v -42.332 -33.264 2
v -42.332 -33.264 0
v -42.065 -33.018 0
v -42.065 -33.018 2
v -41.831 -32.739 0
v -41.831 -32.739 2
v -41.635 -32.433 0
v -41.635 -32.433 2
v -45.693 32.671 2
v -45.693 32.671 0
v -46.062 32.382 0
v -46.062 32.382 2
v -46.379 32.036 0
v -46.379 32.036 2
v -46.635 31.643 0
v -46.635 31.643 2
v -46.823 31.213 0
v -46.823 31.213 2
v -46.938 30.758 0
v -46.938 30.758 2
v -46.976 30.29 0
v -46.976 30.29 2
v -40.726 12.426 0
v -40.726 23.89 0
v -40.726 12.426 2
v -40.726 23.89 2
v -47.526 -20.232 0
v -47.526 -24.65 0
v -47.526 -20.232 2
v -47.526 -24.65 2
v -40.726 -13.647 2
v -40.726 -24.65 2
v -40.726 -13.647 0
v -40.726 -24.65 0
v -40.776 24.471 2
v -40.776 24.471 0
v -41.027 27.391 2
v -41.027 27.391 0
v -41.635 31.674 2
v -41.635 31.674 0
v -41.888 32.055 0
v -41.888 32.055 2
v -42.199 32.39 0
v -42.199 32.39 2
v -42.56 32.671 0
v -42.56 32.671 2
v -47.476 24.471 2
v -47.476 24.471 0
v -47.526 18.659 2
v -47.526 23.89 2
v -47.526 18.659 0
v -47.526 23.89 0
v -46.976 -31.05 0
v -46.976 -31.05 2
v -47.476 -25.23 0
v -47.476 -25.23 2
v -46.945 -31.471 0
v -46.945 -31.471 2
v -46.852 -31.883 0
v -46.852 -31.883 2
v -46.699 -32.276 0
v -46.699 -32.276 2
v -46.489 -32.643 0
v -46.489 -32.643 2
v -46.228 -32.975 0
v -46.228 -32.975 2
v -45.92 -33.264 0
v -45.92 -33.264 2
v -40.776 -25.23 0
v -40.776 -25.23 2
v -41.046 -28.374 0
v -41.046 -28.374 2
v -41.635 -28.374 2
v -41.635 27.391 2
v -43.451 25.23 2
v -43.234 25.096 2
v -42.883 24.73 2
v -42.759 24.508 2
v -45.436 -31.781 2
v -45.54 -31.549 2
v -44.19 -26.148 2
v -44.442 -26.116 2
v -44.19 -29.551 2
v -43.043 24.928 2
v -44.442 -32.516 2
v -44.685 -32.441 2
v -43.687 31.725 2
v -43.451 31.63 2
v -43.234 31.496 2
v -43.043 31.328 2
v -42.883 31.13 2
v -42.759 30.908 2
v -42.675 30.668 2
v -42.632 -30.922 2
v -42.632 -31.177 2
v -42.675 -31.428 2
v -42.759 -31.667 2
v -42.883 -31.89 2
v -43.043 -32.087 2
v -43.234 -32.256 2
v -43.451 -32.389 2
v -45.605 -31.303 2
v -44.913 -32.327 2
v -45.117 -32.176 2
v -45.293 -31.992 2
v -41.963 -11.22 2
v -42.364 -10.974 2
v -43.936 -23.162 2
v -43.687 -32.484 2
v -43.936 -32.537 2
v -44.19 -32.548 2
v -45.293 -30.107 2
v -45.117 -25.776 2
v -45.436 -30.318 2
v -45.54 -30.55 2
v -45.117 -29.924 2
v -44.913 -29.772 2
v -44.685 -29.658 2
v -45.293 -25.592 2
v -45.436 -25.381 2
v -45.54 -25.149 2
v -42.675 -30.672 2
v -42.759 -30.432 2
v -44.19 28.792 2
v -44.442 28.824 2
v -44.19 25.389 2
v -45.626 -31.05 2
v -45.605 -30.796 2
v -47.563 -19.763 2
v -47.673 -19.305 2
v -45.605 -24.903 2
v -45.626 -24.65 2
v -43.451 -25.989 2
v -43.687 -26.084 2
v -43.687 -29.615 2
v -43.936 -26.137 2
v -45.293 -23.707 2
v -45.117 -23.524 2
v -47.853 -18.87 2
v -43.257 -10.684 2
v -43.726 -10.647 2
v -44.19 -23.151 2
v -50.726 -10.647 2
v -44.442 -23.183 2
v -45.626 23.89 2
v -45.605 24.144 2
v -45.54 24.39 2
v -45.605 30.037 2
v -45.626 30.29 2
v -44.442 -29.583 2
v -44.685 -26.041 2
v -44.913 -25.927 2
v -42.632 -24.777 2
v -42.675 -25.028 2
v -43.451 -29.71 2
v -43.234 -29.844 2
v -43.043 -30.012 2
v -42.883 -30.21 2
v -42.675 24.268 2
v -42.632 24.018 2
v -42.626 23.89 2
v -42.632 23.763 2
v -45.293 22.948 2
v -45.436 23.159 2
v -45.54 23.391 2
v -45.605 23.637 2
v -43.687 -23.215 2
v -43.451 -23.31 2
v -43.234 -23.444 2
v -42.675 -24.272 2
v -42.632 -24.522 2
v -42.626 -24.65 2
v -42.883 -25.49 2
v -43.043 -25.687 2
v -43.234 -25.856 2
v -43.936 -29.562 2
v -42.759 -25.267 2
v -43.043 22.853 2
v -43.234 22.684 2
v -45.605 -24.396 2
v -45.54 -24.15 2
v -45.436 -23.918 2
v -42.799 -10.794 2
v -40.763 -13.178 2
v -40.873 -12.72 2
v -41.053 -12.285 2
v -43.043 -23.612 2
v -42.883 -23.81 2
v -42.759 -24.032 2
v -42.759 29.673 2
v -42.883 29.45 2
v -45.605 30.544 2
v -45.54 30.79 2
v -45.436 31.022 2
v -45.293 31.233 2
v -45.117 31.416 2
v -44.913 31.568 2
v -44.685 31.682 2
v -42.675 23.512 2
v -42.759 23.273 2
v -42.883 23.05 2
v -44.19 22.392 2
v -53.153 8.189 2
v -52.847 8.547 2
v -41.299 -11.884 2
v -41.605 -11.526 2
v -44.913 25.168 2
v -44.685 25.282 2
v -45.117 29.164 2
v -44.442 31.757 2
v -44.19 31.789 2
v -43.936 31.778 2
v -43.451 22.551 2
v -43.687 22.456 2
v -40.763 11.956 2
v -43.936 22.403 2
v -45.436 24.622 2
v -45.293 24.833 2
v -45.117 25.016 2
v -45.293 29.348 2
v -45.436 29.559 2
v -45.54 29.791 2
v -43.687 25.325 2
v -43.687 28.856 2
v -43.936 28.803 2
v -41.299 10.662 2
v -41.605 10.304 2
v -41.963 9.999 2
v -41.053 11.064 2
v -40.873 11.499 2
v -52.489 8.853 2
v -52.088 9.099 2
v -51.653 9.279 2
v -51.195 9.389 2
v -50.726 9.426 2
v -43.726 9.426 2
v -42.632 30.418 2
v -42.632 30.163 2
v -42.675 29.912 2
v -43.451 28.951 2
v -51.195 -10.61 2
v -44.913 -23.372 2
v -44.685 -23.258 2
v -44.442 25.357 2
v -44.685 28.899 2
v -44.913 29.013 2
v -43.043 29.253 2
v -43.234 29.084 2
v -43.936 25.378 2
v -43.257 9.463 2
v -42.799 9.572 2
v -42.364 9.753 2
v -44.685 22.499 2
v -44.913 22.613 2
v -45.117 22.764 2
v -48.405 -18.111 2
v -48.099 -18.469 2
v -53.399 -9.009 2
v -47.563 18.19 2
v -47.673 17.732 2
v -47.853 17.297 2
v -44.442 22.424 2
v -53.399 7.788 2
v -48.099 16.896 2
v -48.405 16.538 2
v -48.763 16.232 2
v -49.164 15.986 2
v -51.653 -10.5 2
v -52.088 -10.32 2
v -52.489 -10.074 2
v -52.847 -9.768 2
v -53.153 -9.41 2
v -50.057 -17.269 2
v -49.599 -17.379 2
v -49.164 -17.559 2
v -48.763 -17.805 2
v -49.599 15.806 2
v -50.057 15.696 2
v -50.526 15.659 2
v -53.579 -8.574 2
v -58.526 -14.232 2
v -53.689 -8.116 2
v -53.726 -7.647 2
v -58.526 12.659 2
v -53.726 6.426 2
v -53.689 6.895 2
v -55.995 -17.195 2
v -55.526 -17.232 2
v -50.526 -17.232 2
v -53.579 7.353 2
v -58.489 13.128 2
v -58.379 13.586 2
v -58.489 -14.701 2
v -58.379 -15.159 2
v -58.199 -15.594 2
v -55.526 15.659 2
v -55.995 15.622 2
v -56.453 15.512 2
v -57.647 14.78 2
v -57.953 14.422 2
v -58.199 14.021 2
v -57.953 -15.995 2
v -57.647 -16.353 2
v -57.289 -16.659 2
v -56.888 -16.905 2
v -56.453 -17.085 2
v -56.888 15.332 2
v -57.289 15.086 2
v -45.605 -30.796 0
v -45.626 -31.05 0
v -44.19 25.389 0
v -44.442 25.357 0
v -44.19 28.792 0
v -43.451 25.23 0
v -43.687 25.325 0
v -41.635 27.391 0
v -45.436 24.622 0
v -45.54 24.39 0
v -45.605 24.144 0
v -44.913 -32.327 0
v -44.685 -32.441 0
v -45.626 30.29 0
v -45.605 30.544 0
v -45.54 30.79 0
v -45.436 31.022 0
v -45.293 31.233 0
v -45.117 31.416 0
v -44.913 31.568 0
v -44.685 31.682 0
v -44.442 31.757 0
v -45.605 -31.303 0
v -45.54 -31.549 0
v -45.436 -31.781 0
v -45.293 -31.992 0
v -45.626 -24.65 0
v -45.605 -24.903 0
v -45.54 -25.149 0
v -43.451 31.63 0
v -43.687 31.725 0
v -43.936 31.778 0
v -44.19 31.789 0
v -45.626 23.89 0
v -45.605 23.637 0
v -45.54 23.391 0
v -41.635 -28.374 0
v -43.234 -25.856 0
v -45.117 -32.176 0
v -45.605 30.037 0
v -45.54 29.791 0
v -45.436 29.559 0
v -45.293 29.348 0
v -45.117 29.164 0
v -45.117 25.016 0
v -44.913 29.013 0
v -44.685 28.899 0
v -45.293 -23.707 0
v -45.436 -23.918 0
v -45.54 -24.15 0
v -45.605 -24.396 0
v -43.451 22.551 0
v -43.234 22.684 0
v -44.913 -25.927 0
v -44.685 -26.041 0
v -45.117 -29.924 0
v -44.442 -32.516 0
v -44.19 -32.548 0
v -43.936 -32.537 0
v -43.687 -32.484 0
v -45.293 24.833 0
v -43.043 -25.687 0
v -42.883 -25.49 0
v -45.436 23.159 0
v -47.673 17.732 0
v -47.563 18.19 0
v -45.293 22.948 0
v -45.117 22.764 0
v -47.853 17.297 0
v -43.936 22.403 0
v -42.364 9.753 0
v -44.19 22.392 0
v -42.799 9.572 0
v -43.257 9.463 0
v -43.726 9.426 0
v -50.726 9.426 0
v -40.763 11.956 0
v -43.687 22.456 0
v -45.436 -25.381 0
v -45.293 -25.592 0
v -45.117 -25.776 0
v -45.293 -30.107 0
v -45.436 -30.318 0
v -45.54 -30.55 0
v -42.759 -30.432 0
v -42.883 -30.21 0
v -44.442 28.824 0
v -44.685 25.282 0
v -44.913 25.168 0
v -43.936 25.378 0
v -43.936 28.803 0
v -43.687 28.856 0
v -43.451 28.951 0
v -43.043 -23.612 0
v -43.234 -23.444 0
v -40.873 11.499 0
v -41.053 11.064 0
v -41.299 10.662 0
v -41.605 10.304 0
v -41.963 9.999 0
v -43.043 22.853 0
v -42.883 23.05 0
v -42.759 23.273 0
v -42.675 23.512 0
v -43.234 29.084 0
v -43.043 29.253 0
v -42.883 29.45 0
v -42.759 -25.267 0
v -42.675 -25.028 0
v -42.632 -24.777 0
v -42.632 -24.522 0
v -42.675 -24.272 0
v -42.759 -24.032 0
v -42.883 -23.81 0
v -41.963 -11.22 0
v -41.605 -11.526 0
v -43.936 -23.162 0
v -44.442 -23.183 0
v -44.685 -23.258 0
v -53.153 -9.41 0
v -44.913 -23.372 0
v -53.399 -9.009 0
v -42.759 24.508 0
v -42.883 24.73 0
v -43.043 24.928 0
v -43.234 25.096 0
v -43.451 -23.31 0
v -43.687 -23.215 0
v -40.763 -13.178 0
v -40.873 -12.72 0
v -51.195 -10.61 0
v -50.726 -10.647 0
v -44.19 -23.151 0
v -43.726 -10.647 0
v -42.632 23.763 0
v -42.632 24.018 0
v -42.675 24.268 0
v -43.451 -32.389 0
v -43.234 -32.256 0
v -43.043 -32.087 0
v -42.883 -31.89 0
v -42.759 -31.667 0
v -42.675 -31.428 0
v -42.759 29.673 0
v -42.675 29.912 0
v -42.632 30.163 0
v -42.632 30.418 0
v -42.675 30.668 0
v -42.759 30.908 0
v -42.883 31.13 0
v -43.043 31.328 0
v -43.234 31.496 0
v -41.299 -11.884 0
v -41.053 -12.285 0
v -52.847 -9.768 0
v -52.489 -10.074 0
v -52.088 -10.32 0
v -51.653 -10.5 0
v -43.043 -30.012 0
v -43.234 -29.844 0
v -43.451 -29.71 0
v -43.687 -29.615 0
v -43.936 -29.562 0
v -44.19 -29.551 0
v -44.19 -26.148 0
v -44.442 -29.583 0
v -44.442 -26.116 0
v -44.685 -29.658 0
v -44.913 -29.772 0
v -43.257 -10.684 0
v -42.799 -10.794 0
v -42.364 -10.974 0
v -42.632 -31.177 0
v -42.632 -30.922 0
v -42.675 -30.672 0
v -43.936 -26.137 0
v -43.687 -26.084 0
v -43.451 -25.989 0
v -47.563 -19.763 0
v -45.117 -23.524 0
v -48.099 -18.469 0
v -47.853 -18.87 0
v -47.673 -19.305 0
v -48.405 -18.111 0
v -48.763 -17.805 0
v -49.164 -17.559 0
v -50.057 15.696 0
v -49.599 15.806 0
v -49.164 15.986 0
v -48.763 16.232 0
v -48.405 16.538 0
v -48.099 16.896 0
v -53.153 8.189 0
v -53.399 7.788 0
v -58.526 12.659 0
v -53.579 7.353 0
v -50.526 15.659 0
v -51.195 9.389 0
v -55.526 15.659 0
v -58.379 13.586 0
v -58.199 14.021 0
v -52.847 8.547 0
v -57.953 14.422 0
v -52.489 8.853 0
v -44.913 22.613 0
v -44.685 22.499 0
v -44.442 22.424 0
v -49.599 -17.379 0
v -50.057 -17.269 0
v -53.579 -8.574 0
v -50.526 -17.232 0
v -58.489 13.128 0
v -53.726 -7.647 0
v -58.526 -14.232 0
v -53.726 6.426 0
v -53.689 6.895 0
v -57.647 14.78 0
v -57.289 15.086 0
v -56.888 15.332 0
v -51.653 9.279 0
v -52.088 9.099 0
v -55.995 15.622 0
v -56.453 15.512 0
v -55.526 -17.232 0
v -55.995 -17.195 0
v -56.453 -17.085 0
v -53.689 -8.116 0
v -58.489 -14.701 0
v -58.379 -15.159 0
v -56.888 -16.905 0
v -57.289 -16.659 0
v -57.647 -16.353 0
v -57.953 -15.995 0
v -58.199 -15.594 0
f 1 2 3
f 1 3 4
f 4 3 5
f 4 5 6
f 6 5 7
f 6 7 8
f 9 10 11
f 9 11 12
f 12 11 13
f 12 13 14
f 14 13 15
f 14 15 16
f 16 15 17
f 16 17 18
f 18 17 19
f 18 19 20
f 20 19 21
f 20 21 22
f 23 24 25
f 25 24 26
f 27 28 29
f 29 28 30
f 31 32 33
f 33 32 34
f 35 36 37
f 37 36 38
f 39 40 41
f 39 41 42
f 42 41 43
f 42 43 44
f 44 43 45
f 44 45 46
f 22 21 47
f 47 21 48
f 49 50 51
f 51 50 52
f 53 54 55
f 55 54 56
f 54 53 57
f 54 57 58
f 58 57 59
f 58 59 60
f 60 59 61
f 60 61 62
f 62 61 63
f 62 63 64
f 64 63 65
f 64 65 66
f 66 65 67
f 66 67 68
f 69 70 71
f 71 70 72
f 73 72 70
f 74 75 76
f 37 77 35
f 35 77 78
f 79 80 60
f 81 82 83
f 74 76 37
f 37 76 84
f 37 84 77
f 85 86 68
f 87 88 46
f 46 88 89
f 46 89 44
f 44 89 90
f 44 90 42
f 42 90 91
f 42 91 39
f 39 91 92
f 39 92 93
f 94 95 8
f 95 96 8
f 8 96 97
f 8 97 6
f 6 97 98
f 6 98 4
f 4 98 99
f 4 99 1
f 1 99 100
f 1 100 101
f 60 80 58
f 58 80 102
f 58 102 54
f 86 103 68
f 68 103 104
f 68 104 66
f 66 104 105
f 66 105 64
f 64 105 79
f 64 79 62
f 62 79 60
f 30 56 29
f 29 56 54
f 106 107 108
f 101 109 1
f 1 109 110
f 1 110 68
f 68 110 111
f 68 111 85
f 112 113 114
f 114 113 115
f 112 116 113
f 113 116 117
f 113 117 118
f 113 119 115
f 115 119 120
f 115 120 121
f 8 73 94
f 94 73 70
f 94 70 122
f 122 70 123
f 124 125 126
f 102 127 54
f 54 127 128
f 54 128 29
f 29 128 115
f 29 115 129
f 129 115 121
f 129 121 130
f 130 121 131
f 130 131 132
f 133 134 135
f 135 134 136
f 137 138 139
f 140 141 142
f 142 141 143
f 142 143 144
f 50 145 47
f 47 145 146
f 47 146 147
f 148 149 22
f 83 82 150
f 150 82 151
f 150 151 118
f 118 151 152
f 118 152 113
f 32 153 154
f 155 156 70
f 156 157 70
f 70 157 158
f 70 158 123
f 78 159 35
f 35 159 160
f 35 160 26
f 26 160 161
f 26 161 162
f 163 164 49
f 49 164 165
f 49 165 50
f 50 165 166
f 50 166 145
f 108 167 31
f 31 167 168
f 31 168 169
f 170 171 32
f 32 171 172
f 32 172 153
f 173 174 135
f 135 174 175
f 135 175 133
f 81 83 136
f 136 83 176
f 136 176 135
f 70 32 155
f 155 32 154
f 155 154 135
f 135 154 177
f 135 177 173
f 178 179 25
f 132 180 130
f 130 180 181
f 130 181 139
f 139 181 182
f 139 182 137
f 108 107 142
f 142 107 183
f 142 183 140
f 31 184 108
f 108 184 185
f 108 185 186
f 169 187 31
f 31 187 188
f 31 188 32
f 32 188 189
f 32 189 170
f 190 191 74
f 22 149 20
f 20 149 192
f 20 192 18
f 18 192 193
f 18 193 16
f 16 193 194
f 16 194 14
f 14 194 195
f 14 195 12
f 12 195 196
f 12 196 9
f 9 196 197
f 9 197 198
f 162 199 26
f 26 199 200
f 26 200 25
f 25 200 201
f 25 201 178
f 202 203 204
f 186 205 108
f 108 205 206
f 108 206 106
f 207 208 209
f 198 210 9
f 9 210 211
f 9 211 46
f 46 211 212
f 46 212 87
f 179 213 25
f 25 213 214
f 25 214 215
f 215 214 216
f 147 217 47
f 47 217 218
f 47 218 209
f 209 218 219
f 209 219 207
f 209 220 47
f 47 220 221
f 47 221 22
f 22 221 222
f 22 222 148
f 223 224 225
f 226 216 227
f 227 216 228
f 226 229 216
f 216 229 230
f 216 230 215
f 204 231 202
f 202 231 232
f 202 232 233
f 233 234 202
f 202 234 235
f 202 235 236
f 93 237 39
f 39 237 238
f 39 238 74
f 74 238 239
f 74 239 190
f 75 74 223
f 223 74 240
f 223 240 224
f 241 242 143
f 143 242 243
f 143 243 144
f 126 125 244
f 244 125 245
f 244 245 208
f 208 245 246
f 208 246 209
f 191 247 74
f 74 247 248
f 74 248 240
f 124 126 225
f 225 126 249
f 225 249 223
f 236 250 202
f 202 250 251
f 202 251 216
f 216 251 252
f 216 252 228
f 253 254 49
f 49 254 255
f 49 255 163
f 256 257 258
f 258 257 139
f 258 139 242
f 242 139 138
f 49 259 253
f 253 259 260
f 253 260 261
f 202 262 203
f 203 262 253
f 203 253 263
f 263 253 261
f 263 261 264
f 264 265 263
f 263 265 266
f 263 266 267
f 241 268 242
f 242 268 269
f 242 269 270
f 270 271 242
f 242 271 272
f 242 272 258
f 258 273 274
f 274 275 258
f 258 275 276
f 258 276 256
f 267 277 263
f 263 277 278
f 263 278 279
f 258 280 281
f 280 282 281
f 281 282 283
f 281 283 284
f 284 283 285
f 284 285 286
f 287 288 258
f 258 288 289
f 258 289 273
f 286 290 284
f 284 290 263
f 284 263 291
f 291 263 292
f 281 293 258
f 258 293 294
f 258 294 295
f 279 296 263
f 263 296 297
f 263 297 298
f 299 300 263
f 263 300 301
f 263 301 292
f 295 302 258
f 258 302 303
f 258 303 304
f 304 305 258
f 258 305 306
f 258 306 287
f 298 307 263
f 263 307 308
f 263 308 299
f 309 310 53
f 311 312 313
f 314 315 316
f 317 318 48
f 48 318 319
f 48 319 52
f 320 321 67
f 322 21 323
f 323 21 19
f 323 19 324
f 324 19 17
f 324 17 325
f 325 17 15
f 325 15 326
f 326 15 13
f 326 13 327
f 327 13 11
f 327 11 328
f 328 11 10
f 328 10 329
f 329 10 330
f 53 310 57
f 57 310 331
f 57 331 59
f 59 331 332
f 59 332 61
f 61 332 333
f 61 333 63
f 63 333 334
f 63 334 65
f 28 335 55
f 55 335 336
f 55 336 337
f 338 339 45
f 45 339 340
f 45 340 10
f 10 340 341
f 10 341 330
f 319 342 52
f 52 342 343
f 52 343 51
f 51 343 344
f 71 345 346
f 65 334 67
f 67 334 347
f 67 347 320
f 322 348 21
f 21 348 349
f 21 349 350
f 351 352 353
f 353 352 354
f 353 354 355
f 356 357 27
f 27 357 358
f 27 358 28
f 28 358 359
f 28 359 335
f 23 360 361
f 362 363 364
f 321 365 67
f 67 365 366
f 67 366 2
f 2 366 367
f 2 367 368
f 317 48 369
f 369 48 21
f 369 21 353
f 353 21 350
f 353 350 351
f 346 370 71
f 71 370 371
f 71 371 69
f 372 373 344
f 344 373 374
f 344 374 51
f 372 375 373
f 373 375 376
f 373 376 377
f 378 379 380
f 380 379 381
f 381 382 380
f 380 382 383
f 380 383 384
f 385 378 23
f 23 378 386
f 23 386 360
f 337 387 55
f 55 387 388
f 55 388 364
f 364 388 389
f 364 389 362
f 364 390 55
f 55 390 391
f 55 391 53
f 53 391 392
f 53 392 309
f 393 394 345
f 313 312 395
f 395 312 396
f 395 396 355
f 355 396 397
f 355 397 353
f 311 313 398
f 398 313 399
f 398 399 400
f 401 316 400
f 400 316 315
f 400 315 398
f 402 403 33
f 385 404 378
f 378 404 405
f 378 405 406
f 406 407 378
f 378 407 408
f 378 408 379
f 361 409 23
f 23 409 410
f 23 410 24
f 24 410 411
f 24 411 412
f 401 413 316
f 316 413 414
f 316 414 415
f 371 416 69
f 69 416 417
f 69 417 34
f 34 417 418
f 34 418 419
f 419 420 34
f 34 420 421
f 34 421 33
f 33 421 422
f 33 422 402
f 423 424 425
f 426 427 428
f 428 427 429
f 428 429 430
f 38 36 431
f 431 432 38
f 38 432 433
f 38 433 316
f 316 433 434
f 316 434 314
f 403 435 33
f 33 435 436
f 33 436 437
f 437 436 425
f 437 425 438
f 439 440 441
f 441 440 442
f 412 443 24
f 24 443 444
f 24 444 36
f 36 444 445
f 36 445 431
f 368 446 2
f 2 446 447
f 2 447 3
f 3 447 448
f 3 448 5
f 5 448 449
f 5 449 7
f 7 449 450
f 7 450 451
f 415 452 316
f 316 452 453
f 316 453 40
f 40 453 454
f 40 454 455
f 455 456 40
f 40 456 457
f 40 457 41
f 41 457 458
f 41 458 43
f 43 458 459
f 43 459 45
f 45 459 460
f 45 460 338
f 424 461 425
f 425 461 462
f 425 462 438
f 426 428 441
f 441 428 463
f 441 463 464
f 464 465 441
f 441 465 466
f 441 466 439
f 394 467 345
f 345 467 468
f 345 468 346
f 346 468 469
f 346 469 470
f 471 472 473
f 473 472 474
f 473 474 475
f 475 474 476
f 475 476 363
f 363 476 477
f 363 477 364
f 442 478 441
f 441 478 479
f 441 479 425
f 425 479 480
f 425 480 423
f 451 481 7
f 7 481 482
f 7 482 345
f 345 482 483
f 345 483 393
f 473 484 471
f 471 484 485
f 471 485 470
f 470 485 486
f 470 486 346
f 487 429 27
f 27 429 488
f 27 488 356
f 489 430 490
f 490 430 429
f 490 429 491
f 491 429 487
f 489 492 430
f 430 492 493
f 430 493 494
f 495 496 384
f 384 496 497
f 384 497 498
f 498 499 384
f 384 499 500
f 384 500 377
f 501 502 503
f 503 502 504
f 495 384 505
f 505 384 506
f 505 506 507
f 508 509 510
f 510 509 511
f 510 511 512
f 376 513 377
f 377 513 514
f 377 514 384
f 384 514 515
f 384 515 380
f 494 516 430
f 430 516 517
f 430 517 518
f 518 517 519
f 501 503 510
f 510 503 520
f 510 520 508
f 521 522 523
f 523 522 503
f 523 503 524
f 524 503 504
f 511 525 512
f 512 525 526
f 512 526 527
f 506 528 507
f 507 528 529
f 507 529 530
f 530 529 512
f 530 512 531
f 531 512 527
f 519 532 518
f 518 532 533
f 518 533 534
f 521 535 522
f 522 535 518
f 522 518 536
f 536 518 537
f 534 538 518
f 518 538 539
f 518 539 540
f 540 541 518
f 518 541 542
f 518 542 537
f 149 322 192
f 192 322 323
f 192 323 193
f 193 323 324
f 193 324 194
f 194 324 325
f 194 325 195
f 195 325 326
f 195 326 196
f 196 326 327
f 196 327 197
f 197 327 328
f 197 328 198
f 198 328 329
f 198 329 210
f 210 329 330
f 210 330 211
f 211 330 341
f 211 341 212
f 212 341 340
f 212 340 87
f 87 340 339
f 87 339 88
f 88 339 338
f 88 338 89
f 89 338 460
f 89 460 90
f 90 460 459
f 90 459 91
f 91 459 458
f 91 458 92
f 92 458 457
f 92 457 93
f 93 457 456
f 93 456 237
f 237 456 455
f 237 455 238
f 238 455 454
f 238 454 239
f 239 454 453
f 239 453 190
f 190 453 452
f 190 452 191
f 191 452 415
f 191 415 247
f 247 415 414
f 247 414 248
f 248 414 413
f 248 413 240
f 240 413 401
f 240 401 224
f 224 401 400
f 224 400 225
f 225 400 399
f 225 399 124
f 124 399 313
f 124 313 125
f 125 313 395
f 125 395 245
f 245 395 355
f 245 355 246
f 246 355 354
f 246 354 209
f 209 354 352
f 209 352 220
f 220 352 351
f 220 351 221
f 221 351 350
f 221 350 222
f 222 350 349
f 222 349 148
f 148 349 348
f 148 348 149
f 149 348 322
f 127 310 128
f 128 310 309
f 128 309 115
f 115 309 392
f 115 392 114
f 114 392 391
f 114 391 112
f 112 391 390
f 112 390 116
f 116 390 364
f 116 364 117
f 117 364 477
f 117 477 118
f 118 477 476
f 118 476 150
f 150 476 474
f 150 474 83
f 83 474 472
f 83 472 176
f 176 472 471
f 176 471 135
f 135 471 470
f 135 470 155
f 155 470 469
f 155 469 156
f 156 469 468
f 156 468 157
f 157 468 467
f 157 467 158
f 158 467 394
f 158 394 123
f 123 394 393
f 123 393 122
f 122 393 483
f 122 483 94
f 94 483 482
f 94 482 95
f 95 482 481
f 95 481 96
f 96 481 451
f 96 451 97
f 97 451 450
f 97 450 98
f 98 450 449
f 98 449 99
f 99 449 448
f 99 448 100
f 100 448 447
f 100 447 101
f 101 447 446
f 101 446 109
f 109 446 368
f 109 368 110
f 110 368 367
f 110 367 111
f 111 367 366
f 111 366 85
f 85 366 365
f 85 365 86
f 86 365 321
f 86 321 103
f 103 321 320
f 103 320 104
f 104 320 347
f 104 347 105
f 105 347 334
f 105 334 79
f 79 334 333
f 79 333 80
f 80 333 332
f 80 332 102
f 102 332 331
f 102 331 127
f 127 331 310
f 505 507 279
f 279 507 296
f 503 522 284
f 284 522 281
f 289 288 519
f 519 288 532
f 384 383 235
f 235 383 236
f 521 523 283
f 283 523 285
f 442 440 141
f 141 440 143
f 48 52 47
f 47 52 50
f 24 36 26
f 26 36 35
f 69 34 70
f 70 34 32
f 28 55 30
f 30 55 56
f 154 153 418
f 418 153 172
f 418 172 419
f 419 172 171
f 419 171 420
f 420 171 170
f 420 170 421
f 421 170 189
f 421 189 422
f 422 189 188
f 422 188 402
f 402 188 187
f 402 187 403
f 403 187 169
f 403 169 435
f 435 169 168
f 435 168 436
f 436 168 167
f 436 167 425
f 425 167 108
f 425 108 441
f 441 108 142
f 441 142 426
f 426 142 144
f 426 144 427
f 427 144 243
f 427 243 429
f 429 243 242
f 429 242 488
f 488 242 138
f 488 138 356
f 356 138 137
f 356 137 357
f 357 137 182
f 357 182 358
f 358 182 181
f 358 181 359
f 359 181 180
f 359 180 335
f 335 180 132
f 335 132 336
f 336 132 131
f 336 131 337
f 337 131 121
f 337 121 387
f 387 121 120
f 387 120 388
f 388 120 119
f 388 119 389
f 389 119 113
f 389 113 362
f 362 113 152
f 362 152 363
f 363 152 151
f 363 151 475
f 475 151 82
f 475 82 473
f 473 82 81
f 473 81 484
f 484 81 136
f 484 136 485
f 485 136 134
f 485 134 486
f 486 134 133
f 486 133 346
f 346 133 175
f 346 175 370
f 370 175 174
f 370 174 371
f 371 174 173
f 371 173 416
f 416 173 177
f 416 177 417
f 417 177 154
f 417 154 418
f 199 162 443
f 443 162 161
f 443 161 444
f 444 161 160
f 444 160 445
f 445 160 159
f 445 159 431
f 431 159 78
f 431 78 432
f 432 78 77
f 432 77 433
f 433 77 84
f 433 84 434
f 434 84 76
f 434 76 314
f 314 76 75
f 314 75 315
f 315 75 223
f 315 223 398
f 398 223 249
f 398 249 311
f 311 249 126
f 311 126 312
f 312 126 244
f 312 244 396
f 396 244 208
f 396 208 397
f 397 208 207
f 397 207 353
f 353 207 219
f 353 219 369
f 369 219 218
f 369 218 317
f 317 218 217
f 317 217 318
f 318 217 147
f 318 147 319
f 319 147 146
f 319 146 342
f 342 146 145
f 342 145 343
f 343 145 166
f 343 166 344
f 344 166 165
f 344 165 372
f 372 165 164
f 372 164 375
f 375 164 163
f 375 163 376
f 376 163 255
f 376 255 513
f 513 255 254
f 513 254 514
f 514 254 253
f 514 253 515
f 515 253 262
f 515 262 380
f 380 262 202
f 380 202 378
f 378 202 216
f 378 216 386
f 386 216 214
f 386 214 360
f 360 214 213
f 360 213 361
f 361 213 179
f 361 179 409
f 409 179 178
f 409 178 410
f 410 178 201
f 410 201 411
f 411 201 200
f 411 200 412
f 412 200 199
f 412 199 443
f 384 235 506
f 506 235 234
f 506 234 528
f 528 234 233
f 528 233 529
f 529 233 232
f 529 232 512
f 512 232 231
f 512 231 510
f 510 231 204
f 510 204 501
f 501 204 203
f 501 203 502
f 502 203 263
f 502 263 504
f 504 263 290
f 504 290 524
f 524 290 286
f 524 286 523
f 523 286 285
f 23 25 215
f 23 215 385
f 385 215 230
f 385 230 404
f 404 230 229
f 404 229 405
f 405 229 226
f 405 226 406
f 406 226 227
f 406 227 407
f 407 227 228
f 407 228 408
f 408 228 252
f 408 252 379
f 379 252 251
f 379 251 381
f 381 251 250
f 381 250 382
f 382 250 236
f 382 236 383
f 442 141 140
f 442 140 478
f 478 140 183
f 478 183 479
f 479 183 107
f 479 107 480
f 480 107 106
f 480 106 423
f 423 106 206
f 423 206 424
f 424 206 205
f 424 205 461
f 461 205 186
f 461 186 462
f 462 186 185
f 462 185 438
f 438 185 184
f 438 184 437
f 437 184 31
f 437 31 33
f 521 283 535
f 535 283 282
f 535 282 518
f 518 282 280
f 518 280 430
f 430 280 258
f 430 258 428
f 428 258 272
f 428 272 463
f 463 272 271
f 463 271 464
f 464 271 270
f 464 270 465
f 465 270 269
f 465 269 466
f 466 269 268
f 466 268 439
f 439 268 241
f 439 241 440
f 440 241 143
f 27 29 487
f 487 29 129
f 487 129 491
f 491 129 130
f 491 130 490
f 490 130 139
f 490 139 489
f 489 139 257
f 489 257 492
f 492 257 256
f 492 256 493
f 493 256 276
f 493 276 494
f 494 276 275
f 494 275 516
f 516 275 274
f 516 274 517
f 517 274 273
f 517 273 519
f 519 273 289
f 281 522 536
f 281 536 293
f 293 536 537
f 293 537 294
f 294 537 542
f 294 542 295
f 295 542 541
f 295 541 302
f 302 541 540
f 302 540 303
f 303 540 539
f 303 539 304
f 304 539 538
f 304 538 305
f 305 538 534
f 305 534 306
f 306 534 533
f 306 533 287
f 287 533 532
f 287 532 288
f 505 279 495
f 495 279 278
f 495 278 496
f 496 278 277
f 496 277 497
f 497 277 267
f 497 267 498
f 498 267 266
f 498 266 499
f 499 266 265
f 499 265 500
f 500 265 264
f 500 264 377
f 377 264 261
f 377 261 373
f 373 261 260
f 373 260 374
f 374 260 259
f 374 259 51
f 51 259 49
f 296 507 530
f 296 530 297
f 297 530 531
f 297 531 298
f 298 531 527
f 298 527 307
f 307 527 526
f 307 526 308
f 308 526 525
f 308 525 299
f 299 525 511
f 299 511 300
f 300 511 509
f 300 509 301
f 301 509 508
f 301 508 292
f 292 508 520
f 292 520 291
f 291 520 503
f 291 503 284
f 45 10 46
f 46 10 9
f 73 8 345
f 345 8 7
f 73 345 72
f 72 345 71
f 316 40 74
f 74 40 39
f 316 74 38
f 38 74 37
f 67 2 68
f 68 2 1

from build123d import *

# Parameters (mm, degrees)
SKIZZE5_R                       = 2.85
AUFSATZ_LINEAR_AUSTRAGEN2_DEPTH = 2
SKIZZE7_R                       = 1.5
SKIZZE7_R_2                     = 2.5
SCHNITT_LINEAR_AUSTRAGEN1_DEPTH = 2
SKIZZE8_W                       = 11
SKIZZE8_H                       = 32.890928956
AUFSATZ_LINEAR_AUSTRAGEN3_DEPTH = 2
SKIZZE9_W                       = 13
SKIZZE9_H                       = 20.072612556
SCHNITT_LINEAR_AUSTRAGEN2_DEPTH = 2
SKIZZE10_R                      = 3.4
AUFSATZ_LINEAR_AUSTRAGEN4_DEPTH = 2
SKIZZE11_R                      = 1.5
SCHNITT_LINEAR_AUSTRAGEN3_DEPTH = 5
VERRUNDUNG3_R                   = 3
VERRUNDUNG4_R                   = 3
VERRUNDUNG5_R                   = 3
VERRUNDUNG6_R                   = 3
SKIZZE12_W                      = 4.557802571
SKIZZE12_H                      = 1.72453781
SKIZZE12_W_2                    = 7.81907696
SKIZZE12_H_2                    = 1.295060399
SKIZZE12_W_3                    = 1.755726722
SKIZZE12_H_3                    = 5.084854061
SKIZZE12_H_4                    = 4.524687863
SCHNITT_LINEAR_AUSTRAGEN4_DEPTH = 10


with BuildPart() as part:
    # Skizze5 → Aufsatz-Linear austragen2 (new body)
    with BuildSketch(Plane.XY):
        with BuildLine():
            Line((-40.726132402, -24.649552882), (-40.726132402, 23.890447118))
            ThreePointArc((-40.726132402, 23.890447118), (-44.126132402, 20.490447118), (-47.526132402, 23.890447118))
            Line((-47.526132402, 23.890447118), (-47.526132402, -24.649552882))
            ThreePointArc((-47.526132402, -24.649552882), (-44.126132402, -21.249552882), (-40.726132402, -24.649552882))
        make_face()
        with BuildLine():
            Line((-40.726132402, 23.890447118), (-40.775983963, 24.470537999))
            ThreePointArc((-40.775983963, 24.470537999), (-44.126132402, 27.290447118), (-47.476280842, 24.470537999))
            Line((-47.476280842, 24.470537999), (-47.526132402, 23.890447118))
            ThreePointArc((-47.526132402, 23.890447118), (-44.126132402, 20.490447118), (-40.726132402, 23.890447118))
        make_face()
        with Locations((-44.126132402, 30.290447118)):
            Circle(SKIZZE5_R)
        with BuildLine():
            Line((-40.775983963, 24.470537999), (-41.276132402, 30.290447118))
            ThreePointArc((-41.276132402, 30.290447118), (-44.126132402, 27.440447118), (-46.976132402, 30.290447118))
            Line((-46.976132402, 30.290447118), (-47.476280842, 24.470537999))
            ThreePointArc((-47.476280842, 24.470537999), (-44.126132402, 27.290447118), (-40.775983963, 24.470537999))
        make_face()
        with BuildLine():
            Line((-40.775983963, -25.229643764), (-40.726132402, -24.649552882))
            ThreePointArc((-40.726132402, -24.649552882), (-44.126132402, -21.249552882), (-47.526132402, -24.649552882))
            Line((-47.526132402, -24.649552882), (-47.476280842, -25.229643764))
            ThreePointArc((-47.476280842, -25.229643764), (-44.126132402, -28.049552882), (-40.775983963, -25.229643764))
        make_face()
        with BuildLine():
            Line((-41.276132402, -31.049552882), (-40.775983963, -25.229643764))
            ThreePointArc((-40.775983963, -25.229643764), (-44.126132402, -28.049552882), (-47.476280842, -25.229643764))
            Line((-47.476280842, -25.229643764), (-46.976132402, -31.049552882))
            ThreePointArc((-46.976132402, -31.049552882), (-44.126132402, -28.199552882), (-41.276132402, -31.049552882))
        make_face()
        with Locations((-44.126132402, -31.049552882)):
            Circle(SKIZZE5_R)
    extrude(amount=AUFSATZ_LINEAR_AUSTRAGEN2_DEPTH)

    # Skizze7 → Schnitt-Linear austragen1 (cut)
    with BuildSketch(Plane(origin=(0, 0, 0), x_dir=(-1, 0, 0), z_dir=(0, 0, -1))):
        with Locations((44.126132402, 30.290447118)):
            Circle(SKIZZE7_R)
        with Locations((44.126132402, 23.890447118)):
            Circle(SKIZZE7_R_2)
        with Locations((44.126132402, -24.649552882)):
            Circle(SKIZZE7_R_2)
        with Locations((44.126132402, -31.049552882)):
            Circle(SKIZZE7_R)
    extrude(amount=-SCHNITT_LINEAR_AUSTRAGEN1_DEPTH, mode=Mode.SUBTRACT)

    # Skizze8 → Aufsatz-Linear austragen3 (add)
    with BuildSketch(Plane(origin=(0, 0, 0), x_dir=(-1, 0, 0), z_dir=(0, 0, -1))):
        with Locations((53.026132402, -0.786592511)):
            Rectangle(SKIZZE8_W, SKIZZE8_H)
    extrude(amount=-AUFSATZ_LINEAR_AUSTRAGEN3_DEPTH)

    # Skizze9 → Schnitt-Linear austragen2 (cut)
    with BuildSketch(Plane(origin=(0, 0, 0), x_dir=(-1, 0, 0), z_dir=(0, 0, -1))):
        with Locations((47.226132402, -0.610696343)):
            Rectangle(SKIZZE9_W, SKIZZE9_H)
    extrude(amount=-SCHNITT_LINEAR_AUSTRAGEN2_DEPTH, mode=Mode.SUBTRACT)

    # Skizze10 → Aufsatz-Linear austragen4 (add)
    with BuildSketch(Plane(origin=(0, 0, 0), x_dir=(-1, 0, 0), z_dir=(0, 0, -1))):
        with Locations((44.126132402, 23.890447118)):
            Circle(SKIZZE10_R)
        with Locations((44.126132402, -24.649552882)):
            Circle(SKIZZE10_R)
    extrude(amount=-AUFSATZ_LINEAR_AUSTRAGEN4_DEPTH)

    # Skizze11 → Schnitt-Linear austragen3 (cut)
    with BuildSketch(Plane(origin=(0, 0, 0), x_dir=(-1, 0, 0), z_dir=(0, 0, -1))):
        with Locations((44.126132402, -24.649552882)):
            Circle(SKIZZE11_R)
        with Locations((44.126132402, 23.890447118)):
            Circle(SKIZZE11_R)
    extrude(amount=-SCHNITT_LINEAR_AUSTRAGEN3_DEPTH, mode=Mode.SUBTRACT)

    # Verrundung3
    verrundung3_edges = [part.edges().sort_by_distance(p)[0] for p in [
        (-40.726132402, 9.425609935, 1),
        (-53.726132402, 9.425609935, 1),
    ]]
    fillet(verrundung3_edges, radius=VERRUNDUNG3_R)

    # Verrundung4
    verrundung4_edges = [part.edges().sort_by_distance(p)[0] for p in [
        (-40.726132402, -10.647002621, 1),
        (-53.726132402, -10.647002621, 1),
    ]]
    fillet(verrundung4_edges, radius=VERRUNDUNG4_R)

    # Verrundung5
    verrundung5_edges = [part.edges().sort_by_distance(p)[0] for p in [
        (-47.526132402, -17.232056989, 1),
        (-58.526132402, -17.232056989, 1),
    ]]
    fillet(verrundung5_edges, radius=VERRUNDUNG5_R)

    # Verrundung6
    verrundung6_edges = [part.edges().sort_by_distance(p)[0] for p in [
        (-47.526132402, 15.658871967, 1),
        (-58.526132402, 15.658871967, 1),
    ]]
    fillet(verrundung6_edges, radius=VERRUNDUNG6_R)

    # Skizze12 → Schnitt-Linear austragen4 (cut)
    with BuildSketch(Plane(origin=(0, 0, 0), x_dir=(-1, 0, 0), z_dir=(0, 0, -1))):
        with Locations((44.015184194, 33.533655536)):
            Rectangle(SKIZZE12_W, SKIZZE12_H)
        with Locations((44.191445116, -33.911577792)):
            Rectangle(SKIZZE12_W_2, SKIZZE12_H_2)
        with Locations((40.756736433, 29.933182837)):
            Rectangle(SKIZZE12_W_3, SKIZZE12_H_3)
        with Locations((40.756736433, -30.635891291)):
            Rectangle(SKIZZE12_W_3, SKIZZE12_H_4)
    extrude(amount=-SCHNITT_LINEAR_AUSTRAGEN4_DEPTH, mode=Mode.SUBTRACT)


solid = part.part
